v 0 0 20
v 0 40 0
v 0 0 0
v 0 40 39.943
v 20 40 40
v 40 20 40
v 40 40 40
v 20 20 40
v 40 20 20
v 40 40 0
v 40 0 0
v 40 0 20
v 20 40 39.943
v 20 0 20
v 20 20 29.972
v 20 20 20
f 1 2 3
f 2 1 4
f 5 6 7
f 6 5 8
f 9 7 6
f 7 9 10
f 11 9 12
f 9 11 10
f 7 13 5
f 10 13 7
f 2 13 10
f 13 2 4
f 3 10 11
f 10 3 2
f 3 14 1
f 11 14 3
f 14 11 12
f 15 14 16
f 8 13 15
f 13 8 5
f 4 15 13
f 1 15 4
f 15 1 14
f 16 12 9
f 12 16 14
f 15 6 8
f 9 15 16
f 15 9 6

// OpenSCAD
difference(){
 
 cube([40, 40, 40]);
 translate([0, 0, 20])
 rotate([26.5, 0, 0])
 cube([20, 50, 20]);
 translate([20, 0, 20])
 cube([20, 20, 20]);

}
